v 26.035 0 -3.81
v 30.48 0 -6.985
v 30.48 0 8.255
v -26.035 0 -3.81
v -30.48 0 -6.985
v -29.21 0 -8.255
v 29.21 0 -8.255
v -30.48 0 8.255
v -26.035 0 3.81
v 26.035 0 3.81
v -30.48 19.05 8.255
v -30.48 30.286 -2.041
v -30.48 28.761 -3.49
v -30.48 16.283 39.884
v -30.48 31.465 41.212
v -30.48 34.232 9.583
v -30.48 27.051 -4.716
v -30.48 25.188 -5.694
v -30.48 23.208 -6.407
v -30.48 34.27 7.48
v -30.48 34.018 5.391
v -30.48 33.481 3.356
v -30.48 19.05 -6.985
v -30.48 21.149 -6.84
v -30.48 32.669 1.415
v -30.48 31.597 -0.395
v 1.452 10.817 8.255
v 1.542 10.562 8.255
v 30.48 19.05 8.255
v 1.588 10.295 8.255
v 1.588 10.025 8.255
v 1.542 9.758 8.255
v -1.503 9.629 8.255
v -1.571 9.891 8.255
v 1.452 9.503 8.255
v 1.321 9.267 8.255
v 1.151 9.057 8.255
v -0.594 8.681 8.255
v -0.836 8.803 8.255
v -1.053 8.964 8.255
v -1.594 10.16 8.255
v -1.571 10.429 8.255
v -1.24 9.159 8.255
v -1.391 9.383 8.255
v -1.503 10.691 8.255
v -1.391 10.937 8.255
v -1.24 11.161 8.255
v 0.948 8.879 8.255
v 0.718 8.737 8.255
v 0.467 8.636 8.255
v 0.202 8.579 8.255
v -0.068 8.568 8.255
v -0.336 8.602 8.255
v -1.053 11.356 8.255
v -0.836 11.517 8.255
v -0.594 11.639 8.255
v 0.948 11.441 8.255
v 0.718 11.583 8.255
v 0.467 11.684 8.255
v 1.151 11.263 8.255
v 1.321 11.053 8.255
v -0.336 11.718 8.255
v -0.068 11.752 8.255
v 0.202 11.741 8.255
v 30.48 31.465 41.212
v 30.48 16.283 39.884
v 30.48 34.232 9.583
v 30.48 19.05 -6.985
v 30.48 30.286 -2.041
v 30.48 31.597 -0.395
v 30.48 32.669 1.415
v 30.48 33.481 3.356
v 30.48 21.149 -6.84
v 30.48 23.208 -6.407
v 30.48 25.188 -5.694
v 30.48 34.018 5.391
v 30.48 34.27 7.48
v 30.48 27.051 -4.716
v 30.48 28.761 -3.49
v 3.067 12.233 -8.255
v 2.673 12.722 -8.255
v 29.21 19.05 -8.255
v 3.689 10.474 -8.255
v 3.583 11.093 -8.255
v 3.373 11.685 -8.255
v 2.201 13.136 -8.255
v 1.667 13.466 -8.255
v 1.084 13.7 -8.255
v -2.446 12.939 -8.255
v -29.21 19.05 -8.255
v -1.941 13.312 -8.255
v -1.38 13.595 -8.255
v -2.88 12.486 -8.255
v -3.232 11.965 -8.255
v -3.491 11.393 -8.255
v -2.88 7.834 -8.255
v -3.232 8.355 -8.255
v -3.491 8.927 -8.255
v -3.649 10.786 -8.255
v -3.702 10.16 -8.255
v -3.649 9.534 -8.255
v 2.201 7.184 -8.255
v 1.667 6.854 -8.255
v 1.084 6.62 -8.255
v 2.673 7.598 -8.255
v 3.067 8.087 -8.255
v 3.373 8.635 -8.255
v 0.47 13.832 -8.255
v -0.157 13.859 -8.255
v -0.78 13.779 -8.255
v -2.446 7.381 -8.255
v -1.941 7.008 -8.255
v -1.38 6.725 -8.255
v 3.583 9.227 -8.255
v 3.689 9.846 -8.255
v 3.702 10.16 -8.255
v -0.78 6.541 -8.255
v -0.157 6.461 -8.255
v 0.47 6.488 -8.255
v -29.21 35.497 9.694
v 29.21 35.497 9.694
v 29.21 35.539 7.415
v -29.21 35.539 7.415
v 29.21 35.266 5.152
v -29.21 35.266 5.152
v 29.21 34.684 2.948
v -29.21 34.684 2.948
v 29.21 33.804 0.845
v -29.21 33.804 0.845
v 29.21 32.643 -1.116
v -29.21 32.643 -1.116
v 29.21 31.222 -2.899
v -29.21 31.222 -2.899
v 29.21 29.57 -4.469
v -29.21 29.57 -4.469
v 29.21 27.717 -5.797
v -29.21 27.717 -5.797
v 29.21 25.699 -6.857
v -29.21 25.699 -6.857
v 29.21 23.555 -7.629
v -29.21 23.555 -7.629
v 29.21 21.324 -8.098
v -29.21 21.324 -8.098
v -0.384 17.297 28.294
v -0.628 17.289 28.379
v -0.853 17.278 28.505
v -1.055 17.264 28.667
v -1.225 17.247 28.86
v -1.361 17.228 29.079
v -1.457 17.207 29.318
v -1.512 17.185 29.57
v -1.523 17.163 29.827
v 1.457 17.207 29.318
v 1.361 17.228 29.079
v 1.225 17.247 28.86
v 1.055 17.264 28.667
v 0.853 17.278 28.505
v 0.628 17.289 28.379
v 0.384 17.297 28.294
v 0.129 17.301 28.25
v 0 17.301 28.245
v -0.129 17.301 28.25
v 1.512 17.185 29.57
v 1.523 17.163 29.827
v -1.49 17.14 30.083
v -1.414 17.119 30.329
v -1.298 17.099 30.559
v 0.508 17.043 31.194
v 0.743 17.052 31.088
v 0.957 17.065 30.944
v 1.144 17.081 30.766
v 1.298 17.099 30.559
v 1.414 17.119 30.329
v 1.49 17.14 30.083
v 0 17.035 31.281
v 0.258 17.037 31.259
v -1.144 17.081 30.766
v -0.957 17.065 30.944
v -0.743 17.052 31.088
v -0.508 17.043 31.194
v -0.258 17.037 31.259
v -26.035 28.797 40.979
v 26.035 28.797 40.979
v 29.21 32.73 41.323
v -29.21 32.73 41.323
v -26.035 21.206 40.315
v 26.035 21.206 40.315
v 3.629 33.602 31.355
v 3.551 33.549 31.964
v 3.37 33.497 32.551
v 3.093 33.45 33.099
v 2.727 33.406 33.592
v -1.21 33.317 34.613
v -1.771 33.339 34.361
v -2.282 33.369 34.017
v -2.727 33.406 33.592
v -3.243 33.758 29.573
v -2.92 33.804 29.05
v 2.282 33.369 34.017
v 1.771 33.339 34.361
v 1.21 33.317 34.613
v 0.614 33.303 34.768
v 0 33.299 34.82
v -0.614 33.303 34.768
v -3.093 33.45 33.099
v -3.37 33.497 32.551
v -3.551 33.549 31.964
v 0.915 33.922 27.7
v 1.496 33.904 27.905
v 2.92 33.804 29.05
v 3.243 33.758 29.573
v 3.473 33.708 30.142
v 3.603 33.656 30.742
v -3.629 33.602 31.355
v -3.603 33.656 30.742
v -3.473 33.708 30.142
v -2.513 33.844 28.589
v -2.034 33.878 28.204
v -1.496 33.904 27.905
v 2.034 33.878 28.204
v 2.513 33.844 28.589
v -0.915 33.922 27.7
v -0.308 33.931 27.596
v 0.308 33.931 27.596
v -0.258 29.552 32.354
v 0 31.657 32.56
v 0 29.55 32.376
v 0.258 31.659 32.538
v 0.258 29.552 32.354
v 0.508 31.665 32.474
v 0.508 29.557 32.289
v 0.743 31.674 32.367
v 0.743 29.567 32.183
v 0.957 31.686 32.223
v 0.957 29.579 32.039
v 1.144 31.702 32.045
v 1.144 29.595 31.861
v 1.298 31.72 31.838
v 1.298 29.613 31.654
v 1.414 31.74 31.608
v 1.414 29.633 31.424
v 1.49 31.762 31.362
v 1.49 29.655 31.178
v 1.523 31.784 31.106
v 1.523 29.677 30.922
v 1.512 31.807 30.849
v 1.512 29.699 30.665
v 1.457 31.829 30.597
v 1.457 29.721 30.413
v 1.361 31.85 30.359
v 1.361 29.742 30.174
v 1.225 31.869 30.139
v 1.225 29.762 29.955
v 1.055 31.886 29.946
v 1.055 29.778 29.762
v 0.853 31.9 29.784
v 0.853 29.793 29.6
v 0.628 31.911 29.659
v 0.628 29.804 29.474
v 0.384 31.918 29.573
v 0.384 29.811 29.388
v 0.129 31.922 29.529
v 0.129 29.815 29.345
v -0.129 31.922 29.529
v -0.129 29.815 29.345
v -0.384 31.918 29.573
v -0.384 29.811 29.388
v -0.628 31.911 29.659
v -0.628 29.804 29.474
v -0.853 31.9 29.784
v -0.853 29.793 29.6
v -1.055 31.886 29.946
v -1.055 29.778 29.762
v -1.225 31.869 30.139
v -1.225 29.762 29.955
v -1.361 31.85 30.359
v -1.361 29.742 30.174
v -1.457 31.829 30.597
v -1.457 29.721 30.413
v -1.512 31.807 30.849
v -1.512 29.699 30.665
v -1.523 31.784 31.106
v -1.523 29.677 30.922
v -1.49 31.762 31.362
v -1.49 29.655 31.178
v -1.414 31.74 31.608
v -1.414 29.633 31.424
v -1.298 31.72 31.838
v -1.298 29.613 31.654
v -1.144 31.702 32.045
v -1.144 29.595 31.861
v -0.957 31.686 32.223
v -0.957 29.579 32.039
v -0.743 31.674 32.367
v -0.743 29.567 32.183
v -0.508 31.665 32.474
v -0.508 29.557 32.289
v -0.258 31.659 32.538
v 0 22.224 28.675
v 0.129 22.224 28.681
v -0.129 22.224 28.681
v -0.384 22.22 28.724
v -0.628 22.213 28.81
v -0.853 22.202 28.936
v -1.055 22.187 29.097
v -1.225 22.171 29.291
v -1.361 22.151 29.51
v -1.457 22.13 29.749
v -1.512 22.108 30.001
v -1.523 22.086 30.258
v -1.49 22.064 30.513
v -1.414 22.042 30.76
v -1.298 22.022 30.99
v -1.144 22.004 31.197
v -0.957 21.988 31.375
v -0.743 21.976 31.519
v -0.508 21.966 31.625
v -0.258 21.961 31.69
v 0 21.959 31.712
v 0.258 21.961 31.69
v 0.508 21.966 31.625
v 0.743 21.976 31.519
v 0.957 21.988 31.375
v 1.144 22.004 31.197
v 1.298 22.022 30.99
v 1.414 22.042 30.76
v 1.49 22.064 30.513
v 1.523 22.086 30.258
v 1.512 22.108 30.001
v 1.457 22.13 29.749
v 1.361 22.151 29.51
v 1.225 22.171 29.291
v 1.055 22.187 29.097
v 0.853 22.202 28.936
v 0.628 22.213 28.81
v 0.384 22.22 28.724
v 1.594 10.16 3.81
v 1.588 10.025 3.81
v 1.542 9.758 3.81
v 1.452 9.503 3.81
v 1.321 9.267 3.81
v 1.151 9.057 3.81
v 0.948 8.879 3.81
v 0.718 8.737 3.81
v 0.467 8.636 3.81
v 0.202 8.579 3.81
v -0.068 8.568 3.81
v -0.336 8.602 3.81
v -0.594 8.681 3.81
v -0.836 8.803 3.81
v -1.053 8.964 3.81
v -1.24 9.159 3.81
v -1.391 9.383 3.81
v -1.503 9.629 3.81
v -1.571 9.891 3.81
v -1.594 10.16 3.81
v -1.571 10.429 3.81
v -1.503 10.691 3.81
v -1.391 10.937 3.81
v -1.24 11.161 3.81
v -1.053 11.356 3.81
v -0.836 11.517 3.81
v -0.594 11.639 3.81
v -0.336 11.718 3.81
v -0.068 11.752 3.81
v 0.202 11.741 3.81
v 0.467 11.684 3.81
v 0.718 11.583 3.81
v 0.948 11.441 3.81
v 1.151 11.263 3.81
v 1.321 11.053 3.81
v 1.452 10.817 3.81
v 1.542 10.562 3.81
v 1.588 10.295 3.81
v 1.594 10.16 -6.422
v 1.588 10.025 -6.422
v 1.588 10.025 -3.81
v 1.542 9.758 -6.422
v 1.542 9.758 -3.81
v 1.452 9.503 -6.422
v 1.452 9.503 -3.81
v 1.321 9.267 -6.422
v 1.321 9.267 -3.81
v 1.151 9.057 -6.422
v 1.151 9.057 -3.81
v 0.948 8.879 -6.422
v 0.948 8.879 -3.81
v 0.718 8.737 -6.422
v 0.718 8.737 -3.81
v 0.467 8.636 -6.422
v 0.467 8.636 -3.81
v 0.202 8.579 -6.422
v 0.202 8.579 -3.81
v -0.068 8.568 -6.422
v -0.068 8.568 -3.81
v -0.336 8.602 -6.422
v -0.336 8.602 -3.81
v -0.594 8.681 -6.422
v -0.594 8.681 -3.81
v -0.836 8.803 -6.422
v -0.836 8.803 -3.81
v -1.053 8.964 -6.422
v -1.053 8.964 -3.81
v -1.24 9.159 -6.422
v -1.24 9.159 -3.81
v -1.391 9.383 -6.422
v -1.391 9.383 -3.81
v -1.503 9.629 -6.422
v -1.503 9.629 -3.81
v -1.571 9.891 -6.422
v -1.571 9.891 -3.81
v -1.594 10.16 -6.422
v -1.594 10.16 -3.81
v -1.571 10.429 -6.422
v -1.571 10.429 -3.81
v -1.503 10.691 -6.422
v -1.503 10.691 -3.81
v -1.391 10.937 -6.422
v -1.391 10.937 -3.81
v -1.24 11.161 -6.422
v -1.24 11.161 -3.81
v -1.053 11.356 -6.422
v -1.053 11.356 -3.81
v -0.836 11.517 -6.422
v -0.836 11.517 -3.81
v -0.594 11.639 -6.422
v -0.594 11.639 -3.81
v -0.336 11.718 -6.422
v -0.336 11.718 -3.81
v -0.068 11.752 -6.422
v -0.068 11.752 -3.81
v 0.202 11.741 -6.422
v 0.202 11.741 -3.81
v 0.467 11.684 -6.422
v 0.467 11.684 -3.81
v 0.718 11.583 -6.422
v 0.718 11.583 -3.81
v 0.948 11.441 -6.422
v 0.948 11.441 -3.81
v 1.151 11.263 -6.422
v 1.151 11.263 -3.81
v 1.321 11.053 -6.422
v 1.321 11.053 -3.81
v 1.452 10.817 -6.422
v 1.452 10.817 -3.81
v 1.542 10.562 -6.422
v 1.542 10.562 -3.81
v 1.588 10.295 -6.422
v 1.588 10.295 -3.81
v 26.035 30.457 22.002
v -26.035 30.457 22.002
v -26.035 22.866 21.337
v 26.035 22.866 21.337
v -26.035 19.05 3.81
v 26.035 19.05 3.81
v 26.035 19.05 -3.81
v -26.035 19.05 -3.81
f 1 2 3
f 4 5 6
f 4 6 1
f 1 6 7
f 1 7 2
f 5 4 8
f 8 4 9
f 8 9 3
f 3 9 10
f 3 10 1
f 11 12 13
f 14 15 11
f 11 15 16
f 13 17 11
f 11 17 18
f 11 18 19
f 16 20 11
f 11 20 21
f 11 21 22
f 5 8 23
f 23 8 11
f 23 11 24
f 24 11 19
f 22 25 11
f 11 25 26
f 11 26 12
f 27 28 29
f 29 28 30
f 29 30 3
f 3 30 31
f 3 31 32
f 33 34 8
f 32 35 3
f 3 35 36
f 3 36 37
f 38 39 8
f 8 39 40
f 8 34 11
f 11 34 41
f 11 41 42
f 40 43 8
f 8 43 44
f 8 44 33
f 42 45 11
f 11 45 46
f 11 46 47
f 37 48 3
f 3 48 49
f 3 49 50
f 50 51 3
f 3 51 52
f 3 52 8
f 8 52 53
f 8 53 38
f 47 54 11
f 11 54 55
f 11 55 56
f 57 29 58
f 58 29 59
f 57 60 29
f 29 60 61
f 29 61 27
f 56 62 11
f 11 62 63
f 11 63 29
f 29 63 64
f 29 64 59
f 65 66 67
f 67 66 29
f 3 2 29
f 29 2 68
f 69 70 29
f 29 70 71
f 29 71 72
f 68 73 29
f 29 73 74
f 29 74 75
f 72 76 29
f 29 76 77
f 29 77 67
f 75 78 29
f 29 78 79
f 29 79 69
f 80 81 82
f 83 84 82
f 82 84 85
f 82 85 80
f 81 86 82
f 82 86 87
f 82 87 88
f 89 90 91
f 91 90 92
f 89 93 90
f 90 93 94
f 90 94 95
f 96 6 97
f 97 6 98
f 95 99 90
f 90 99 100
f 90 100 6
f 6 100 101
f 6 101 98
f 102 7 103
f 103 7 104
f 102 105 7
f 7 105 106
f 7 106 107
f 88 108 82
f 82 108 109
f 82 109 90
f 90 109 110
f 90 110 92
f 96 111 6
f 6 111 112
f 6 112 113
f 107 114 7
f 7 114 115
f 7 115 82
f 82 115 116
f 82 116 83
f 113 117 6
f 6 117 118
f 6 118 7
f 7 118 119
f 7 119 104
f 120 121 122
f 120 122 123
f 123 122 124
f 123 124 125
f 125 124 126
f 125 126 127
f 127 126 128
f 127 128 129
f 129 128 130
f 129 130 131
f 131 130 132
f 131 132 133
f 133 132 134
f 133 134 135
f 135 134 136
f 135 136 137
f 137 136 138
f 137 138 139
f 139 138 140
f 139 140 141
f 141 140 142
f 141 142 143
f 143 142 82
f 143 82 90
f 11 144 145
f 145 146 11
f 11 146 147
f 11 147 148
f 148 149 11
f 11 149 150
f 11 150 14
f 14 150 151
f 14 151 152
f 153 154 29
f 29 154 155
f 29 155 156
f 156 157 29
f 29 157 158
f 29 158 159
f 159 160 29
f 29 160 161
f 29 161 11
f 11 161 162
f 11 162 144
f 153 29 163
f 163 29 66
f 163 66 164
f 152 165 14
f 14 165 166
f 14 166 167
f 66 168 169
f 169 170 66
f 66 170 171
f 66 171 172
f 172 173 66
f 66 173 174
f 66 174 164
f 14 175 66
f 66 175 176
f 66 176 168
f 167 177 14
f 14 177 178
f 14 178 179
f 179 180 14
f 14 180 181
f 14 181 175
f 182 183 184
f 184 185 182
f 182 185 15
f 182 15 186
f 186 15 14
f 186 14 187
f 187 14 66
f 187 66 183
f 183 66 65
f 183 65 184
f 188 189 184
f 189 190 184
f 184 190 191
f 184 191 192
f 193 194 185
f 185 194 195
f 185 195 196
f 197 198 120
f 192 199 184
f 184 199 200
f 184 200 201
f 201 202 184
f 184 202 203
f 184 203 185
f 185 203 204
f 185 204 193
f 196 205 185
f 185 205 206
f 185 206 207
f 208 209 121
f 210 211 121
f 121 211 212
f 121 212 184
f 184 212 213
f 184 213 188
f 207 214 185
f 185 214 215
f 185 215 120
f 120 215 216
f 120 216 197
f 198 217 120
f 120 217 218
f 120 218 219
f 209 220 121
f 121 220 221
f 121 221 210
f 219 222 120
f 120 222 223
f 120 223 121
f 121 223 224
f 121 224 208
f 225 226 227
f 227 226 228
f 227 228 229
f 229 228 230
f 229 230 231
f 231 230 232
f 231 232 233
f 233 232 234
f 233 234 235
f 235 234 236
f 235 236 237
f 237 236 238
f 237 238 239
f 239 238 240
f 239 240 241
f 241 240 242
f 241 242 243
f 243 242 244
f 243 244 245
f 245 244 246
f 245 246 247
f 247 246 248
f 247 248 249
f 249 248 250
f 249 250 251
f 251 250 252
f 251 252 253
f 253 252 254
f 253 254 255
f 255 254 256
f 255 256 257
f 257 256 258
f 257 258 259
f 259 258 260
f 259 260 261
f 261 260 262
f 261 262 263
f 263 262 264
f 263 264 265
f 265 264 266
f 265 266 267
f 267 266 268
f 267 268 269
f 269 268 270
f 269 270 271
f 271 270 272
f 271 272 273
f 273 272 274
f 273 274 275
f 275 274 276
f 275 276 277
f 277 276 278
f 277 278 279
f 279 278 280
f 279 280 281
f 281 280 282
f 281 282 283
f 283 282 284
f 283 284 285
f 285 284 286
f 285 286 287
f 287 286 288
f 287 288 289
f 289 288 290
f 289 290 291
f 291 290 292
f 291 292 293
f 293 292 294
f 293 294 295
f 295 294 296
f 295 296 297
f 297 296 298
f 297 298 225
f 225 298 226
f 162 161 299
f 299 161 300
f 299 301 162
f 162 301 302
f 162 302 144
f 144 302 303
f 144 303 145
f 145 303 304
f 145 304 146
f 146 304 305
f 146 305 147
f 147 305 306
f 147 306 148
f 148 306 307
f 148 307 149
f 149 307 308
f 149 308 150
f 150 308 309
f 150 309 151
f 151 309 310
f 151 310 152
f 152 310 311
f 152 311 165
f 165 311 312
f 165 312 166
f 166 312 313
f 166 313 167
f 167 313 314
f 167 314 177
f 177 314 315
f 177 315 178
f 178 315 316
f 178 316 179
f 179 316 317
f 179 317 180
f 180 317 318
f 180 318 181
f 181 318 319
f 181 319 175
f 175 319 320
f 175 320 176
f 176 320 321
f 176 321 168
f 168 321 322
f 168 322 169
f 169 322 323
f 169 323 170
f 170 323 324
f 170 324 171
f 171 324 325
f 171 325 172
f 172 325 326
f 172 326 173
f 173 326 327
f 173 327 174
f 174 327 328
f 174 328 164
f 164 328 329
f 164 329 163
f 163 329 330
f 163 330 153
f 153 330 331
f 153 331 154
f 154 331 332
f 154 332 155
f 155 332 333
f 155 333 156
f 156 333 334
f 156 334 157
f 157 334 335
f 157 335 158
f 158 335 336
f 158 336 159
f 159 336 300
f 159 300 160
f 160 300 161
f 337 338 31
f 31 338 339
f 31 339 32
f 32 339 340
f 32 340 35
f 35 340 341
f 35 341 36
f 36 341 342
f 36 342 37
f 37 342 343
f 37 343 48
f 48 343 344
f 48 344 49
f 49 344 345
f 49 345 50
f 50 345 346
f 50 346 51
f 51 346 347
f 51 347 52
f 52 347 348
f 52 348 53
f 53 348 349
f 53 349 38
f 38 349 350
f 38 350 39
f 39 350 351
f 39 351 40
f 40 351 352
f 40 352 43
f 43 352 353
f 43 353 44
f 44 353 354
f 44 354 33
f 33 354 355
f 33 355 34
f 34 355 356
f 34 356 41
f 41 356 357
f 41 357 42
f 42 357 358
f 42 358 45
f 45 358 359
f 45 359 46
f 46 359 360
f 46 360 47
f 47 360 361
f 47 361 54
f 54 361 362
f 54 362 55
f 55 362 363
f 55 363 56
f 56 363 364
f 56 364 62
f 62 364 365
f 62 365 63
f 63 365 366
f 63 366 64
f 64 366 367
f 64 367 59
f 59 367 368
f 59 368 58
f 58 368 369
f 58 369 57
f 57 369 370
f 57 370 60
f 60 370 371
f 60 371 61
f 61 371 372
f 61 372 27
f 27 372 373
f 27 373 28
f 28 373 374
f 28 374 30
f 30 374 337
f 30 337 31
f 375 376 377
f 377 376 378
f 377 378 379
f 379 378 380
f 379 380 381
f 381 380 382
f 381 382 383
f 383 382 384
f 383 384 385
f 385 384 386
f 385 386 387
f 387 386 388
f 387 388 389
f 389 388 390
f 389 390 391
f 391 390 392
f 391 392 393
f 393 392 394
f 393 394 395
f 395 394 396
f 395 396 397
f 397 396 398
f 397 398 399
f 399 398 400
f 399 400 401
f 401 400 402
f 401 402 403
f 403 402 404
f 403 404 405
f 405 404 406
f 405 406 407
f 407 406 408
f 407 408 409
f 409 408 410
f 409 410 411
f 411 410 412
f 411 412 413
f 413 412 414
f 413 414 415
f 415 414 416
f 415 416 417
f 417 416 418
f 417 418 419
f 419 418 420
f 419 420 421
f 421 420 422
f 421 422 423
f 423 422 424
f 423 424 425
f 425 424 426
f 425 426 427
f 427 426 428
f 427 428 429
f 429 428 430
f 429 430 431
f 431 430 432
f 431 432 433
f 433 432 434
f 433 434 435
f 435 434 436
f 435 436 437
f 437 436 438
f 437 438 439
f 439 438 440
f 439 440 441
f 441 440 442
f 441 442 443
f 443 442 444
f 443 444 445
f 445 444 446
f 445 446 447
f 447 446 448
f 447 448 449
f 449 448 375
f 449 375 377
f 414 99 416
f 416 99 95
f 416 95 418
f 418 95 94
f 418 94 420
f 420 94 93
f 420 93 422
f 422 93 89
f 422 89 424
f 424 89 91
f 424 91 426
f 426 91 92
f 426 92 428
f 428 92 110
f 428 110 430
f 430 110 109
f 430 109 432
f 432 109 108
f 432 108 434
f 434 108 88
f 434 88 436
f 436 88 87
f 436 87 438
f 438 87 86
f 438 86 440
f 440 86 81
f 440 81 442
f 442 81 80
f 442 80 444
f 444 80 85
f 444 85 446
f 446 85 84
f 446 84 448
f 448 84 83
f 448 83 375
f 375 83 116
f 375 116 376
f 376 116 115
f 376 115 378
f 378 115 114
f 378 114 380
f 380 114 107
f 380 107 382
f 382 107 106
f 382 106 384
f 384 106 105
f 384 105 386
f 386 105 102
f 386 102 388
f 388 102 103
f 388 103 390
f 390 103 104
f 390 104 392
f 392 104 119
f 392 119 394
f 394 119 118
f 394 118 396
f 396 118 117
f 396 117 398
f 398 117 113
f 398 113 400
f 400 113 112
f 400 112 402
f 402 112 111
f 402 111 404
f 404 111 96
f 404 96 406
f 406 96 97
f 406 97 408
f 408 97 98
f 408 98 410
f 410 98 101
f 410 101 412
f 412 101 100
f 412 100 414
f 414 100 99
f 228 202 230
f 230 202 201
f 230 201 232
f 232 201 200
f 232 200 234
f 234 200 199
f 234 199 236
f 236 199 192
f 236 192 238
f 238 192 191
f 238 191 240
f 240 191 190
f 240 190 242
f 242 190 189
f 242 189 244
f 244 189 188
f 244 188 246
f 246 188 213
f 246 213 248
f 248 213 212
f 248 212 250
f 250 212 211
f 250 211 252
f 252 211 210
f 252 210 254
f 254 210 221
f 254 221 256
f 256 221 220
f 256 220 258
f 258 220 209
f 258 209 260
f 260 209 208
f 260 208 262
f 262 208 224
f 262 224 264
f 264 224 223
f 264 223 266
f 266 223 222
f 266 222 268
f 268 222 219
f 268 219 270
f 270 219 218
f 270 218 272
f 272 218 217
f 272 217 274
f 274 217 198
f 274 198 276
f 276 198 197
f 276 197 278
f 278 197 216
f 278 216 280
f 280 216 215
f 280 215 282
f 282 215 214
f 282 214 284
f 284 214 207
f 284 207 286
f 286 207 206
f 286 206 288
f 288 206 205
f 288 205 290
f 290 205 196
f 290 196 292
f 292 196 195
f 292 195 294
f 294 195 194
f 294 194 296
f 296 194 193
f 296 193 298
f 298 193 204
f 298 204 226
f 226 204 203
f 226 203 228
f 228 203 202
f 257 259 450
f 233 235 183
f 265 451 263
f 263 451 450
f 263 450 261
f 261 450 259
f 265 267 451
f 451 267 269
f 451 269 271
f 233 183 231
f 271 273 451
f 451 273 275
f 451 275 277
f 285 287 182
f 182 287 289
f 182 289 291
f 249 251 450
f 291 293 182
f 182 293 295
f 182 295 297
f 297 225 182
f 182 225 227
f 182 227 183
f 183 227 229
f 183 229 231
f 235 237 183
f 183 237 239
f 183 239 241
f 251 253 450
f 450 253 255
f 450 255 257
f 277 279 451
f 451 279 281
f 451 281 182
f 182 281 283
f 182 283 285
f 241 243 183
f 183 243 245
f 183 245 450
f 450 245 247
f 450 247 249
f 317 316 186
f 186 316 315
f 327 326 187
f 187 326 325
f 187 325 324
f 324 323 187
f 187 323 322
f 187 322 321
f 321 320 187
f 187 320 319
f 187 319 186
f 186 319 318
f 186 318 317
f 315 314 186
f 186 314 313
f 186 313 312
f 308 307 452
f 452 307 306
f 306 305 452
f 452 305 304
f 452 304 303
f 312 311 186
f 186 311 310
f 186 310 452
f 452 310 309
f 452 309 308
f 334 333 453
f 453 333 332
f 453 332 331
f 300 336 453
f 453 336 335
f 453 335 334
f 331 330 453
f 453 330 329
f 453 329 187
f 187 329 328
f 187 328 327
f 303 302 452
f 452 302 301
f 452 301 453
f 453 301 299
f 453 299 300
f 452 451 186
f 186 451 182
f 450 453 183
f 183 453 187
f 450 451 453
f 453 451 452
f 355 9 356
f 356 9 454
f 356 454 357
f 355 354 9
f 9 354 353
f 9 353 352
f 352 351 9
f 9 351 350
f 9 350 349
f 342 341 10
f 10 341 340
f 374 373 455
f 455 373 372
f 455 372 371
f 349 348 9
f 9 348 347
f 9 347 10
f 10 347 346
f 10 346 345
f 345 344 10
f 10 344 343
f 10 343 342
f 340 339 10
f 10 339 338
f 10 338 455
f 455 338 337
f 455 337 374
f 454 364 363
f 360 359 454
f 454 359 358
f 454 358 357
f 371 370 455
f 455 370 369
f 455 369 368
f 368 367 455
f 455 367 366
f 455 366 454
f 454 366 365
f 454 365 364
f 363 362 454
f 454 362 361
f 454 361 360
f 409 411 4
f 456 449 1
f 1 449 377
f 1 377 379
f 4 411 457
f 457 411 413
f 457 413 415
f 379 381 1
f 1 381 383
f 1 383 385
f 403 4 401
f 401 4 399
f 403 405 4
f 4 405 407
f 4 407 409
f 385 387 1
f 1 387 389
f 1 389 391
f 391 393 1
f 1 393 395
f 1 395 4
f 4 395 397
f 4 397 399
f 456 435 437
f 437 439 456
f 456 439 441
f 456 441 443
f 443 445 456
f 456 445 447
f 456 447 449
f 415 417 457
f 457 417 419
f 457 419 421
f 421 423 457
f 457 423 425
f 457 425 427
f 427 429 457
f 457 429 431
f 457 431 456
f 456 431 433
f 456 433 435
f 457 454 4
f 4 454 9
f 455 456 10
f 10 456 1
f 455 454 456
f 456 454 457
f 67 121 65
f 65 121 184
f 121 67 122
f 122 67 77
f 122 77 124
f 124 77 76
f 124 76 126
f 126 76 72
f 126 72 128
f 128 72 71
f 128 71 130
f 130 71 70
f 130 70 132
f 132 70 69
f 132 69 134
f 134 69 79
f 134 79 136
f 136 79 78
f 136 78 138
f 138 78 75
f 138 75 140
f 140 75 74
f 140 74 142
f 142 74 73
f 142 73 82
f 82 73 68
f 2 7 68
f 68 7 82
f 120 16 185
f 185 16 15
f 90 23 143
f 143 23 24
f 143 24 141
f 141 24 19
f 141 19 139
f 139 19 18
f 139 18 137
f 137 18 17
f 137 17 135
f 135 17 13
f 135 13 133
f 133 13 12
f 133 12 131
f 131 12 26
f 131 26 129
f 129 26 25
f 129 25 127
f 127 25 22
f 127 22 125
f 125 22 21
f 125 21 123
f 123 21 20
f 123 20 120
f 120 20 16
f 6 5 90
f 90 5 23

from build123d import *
from OCP.BRepFilletAPI import BRepFilletAPI_MakeChamfer

# Parameters (mm, degrees)
SKETCH1_W           = 60.96
SKETCH1_H           = 16.51
SKETCH1_W_2         = 50.8
SKETCH1_H_2         = 6.35
BOSS_EXTRUDE1_DEPTH = 19.05
BOSS_EXTRUDE2_DEPTH = 60.96
SKETCH7_W           = 50.8
SKETCH7_H           = 6.35
CUT_EXTRUDE1_DEPTH  = 19.05
SKETCH8_R           = 1.524
CUT_EXTRUDE2_DEPTH  = 61.718810561
SKETCH9_R           = 1.593897105
CUT_EXTRUDE3_DEPTH  = 69.202157429
CHAMFER1_SIZE       = 2.1082
CHAMFER1_SIZE2      = 1.832630301
SKETCH10_W          = 52.07
SKETCH10_H          = 7.62
CUT_EXTRUDE4_DEPTH  = 19.05
SKETCH11_W          = 52.07
SKETCH11_H          = 7.62
CUT_EXTRUDE5_DEPTH  = 19.05
CHAMFER2_SIZE       = 1.27


with BuildPart() as part:
    # Sketch1 → Boss-Extrude1 (new body)
    with BuildSketch(Plane(origin=(0, 0, 0), x_dir=(1, 0, 0), z_dir=(0, 1, 0))):
        Rectangle(SKETCH1_W, SKETCH1_H)
        Rectangle(SKETCH1_W_2, SKETCH1_H_2, mode=Mode.SUBTRACT)
    extrude(amount=BOSS_EXTRUDE1_DEPTH)

    # Sketch5 → Boss-Extrude2 (add)
    with BuildSketch(Plane(origin=(30.48, 0, 0), x_dir=(0, 0, -1), z_dir=(1, 0, 0))):
        with BuildLine():
            Line((8.255, 19.05), (-8.255, 19.05))
            Line((-8.255, 19.05), (-39.884181664, 16.282805168))
            Line((-39.884181664, 16.282805168), (-41.323122977, 32.729979633))
            Line((-41.323122977, 32.729979633), (-28.671450311, 33.836857566))
            Line((-28.671450311, 33.836857566), (-9.693941313, 35.497174465))
            ThreePointArc((-9.693941313, 35.497174465), (2.898994328, 31.222448831), (8.255, 19.05))
        make_face()
    extrude(amount=-BOSS_EXTRUDE2_DEPTH)

    # Sketch7 → Cut-Extrude1 (cut)
    with BuildSketch(Plane(origin=(0, -3.339221533, 38.167476773), x_dir=(1, 0, 0), z_dir=(0, -0.08715574274765728, 0.9961946980917457))):
        with Locations((0, 28.449053402)):
            Rectangle(SKETCH7_W, SKETCH7_H)
    extrude(amount=-CUT_EXTRUDE1_DEPTH, mode=Mode.SUBTRACT)

    # Sketch8 → Cut-Extrude2 (cut, through all)
    with BuildSketch(Plane(origin=(0, 36.069201166, 3.155646204), x_dir=(1, 0, 0), z_dir=(0, 0.9961946980917459, 0.08715574274765486))):
        with Locations(Location((0, -28.153270333, 0), (0, 0, 270))):
            Circle(SKETCH8_R)
    extrude(amount=-CUT_EXTRUDE2_DEPTH, mode=Mode.SUBTRACT)

    # Sketch9 → Cut-Extrude3 (cut, through all)
    with BuildSketch(Plane(origin=(0, 0, -8.255), x_dir=(-1, 0, 0), z_dir=(0, 0, -1))):
        with Locations((0, 10.16)):
            Circle(SKETCH9_R)
    extrude(amount=-CUT_EXTRUDE3_DEPTH, mode=Mode.SUBTRACT)

    # Chamfer1: one chamfer whose edges measure the first distance from different faces: ONE call of the kernel's chamfer builder (chamfer() names one face for all edges)
    chamfer1_edges_1 = [part.edges().sort_by_distance(p)[0] for p in [
        (0, 33.748307332, 29.683584125),
    ]]
    chamfer1_side_1 = [part.faces().sort_by_distance(p)[0] for p in [
        (0, 34.115461929, 25.486987868),
    ]]
    chamfer1_edges_2 = [part.edges().sort_by_distance(p)[0] for p in [
        (1.593897105, 10.16, -8.255),
    ]]
    chamfer1_side_2 = [part.faces().sort_by_distance(p)[0] for p in [
        (-29.841327619, 9.525, -8.255),
    ]]
    chamfer1 = BRepFilletAPI_MakeChamfer(part.part.solid().wrapped)
    for e in chamfer1_edges_1:
        chamfer1.Add(CHAMFER1_SIZE, CHAMFER1_SIZE2, e.wrapped, chamfer1_side_1[0].wrapped)  # the first distance lies on this face
    for e in chamfer1_edges_2:
        chamfer1.Add(CHAMFER1_SIZE, CHAMFER1_SIZE2, e.wrapped, chamfer1_side_2[0].wrapped)  # the first distance lies on this face
    add(Compound.cast(chamfer1.Shape()), mode=Mode.REPLACE)

    # Sketch10 → Cut-Extrude4 (cut)
    with BuildSketch(Plane(origin=(0, -3.339221533, 38.167476773), x_dir=(1, 0, 0), z_dir=(0, -0.08715574274765728, 0.9961946980917457))):
        with Locations((0, 28.449053402)):
            Rectangle(SKETCH10_W, SKETCH10_H)
    extrude(amount=-CUT_EXTRUDE4_DEPTH, mode=Mode.SUBTRACT)

    # Sketch11 → Cut-Extrude5 (cut)
    with BuildSketch(Plane.XZ):
        Rectangle(SKETCH11_W, SKETCH11_H)
    extrude(amount=-CUT_EXTRUDE5_DEPTH, mode=Mode.SUBTRACT)

    # Chamfer2
    chamfer2_edges = [part.edges().sort_by_distance(p)[0] for p in [
        (30.48, 31.222448831, -2.898994328),
        (30.48, 34.113577049, 25.508532145),
        (-30.48, 31.222448831, -2.898994328),
        (-30.48, 34.113577049, 25.508532145),
        (-30.48, 9.525, -8.255),
        (30.48, 9.525, -8.255),
    ]]
    chamfer(chamfer2_edges, length=CHAMFER2_SIZE)


solid = part.part
